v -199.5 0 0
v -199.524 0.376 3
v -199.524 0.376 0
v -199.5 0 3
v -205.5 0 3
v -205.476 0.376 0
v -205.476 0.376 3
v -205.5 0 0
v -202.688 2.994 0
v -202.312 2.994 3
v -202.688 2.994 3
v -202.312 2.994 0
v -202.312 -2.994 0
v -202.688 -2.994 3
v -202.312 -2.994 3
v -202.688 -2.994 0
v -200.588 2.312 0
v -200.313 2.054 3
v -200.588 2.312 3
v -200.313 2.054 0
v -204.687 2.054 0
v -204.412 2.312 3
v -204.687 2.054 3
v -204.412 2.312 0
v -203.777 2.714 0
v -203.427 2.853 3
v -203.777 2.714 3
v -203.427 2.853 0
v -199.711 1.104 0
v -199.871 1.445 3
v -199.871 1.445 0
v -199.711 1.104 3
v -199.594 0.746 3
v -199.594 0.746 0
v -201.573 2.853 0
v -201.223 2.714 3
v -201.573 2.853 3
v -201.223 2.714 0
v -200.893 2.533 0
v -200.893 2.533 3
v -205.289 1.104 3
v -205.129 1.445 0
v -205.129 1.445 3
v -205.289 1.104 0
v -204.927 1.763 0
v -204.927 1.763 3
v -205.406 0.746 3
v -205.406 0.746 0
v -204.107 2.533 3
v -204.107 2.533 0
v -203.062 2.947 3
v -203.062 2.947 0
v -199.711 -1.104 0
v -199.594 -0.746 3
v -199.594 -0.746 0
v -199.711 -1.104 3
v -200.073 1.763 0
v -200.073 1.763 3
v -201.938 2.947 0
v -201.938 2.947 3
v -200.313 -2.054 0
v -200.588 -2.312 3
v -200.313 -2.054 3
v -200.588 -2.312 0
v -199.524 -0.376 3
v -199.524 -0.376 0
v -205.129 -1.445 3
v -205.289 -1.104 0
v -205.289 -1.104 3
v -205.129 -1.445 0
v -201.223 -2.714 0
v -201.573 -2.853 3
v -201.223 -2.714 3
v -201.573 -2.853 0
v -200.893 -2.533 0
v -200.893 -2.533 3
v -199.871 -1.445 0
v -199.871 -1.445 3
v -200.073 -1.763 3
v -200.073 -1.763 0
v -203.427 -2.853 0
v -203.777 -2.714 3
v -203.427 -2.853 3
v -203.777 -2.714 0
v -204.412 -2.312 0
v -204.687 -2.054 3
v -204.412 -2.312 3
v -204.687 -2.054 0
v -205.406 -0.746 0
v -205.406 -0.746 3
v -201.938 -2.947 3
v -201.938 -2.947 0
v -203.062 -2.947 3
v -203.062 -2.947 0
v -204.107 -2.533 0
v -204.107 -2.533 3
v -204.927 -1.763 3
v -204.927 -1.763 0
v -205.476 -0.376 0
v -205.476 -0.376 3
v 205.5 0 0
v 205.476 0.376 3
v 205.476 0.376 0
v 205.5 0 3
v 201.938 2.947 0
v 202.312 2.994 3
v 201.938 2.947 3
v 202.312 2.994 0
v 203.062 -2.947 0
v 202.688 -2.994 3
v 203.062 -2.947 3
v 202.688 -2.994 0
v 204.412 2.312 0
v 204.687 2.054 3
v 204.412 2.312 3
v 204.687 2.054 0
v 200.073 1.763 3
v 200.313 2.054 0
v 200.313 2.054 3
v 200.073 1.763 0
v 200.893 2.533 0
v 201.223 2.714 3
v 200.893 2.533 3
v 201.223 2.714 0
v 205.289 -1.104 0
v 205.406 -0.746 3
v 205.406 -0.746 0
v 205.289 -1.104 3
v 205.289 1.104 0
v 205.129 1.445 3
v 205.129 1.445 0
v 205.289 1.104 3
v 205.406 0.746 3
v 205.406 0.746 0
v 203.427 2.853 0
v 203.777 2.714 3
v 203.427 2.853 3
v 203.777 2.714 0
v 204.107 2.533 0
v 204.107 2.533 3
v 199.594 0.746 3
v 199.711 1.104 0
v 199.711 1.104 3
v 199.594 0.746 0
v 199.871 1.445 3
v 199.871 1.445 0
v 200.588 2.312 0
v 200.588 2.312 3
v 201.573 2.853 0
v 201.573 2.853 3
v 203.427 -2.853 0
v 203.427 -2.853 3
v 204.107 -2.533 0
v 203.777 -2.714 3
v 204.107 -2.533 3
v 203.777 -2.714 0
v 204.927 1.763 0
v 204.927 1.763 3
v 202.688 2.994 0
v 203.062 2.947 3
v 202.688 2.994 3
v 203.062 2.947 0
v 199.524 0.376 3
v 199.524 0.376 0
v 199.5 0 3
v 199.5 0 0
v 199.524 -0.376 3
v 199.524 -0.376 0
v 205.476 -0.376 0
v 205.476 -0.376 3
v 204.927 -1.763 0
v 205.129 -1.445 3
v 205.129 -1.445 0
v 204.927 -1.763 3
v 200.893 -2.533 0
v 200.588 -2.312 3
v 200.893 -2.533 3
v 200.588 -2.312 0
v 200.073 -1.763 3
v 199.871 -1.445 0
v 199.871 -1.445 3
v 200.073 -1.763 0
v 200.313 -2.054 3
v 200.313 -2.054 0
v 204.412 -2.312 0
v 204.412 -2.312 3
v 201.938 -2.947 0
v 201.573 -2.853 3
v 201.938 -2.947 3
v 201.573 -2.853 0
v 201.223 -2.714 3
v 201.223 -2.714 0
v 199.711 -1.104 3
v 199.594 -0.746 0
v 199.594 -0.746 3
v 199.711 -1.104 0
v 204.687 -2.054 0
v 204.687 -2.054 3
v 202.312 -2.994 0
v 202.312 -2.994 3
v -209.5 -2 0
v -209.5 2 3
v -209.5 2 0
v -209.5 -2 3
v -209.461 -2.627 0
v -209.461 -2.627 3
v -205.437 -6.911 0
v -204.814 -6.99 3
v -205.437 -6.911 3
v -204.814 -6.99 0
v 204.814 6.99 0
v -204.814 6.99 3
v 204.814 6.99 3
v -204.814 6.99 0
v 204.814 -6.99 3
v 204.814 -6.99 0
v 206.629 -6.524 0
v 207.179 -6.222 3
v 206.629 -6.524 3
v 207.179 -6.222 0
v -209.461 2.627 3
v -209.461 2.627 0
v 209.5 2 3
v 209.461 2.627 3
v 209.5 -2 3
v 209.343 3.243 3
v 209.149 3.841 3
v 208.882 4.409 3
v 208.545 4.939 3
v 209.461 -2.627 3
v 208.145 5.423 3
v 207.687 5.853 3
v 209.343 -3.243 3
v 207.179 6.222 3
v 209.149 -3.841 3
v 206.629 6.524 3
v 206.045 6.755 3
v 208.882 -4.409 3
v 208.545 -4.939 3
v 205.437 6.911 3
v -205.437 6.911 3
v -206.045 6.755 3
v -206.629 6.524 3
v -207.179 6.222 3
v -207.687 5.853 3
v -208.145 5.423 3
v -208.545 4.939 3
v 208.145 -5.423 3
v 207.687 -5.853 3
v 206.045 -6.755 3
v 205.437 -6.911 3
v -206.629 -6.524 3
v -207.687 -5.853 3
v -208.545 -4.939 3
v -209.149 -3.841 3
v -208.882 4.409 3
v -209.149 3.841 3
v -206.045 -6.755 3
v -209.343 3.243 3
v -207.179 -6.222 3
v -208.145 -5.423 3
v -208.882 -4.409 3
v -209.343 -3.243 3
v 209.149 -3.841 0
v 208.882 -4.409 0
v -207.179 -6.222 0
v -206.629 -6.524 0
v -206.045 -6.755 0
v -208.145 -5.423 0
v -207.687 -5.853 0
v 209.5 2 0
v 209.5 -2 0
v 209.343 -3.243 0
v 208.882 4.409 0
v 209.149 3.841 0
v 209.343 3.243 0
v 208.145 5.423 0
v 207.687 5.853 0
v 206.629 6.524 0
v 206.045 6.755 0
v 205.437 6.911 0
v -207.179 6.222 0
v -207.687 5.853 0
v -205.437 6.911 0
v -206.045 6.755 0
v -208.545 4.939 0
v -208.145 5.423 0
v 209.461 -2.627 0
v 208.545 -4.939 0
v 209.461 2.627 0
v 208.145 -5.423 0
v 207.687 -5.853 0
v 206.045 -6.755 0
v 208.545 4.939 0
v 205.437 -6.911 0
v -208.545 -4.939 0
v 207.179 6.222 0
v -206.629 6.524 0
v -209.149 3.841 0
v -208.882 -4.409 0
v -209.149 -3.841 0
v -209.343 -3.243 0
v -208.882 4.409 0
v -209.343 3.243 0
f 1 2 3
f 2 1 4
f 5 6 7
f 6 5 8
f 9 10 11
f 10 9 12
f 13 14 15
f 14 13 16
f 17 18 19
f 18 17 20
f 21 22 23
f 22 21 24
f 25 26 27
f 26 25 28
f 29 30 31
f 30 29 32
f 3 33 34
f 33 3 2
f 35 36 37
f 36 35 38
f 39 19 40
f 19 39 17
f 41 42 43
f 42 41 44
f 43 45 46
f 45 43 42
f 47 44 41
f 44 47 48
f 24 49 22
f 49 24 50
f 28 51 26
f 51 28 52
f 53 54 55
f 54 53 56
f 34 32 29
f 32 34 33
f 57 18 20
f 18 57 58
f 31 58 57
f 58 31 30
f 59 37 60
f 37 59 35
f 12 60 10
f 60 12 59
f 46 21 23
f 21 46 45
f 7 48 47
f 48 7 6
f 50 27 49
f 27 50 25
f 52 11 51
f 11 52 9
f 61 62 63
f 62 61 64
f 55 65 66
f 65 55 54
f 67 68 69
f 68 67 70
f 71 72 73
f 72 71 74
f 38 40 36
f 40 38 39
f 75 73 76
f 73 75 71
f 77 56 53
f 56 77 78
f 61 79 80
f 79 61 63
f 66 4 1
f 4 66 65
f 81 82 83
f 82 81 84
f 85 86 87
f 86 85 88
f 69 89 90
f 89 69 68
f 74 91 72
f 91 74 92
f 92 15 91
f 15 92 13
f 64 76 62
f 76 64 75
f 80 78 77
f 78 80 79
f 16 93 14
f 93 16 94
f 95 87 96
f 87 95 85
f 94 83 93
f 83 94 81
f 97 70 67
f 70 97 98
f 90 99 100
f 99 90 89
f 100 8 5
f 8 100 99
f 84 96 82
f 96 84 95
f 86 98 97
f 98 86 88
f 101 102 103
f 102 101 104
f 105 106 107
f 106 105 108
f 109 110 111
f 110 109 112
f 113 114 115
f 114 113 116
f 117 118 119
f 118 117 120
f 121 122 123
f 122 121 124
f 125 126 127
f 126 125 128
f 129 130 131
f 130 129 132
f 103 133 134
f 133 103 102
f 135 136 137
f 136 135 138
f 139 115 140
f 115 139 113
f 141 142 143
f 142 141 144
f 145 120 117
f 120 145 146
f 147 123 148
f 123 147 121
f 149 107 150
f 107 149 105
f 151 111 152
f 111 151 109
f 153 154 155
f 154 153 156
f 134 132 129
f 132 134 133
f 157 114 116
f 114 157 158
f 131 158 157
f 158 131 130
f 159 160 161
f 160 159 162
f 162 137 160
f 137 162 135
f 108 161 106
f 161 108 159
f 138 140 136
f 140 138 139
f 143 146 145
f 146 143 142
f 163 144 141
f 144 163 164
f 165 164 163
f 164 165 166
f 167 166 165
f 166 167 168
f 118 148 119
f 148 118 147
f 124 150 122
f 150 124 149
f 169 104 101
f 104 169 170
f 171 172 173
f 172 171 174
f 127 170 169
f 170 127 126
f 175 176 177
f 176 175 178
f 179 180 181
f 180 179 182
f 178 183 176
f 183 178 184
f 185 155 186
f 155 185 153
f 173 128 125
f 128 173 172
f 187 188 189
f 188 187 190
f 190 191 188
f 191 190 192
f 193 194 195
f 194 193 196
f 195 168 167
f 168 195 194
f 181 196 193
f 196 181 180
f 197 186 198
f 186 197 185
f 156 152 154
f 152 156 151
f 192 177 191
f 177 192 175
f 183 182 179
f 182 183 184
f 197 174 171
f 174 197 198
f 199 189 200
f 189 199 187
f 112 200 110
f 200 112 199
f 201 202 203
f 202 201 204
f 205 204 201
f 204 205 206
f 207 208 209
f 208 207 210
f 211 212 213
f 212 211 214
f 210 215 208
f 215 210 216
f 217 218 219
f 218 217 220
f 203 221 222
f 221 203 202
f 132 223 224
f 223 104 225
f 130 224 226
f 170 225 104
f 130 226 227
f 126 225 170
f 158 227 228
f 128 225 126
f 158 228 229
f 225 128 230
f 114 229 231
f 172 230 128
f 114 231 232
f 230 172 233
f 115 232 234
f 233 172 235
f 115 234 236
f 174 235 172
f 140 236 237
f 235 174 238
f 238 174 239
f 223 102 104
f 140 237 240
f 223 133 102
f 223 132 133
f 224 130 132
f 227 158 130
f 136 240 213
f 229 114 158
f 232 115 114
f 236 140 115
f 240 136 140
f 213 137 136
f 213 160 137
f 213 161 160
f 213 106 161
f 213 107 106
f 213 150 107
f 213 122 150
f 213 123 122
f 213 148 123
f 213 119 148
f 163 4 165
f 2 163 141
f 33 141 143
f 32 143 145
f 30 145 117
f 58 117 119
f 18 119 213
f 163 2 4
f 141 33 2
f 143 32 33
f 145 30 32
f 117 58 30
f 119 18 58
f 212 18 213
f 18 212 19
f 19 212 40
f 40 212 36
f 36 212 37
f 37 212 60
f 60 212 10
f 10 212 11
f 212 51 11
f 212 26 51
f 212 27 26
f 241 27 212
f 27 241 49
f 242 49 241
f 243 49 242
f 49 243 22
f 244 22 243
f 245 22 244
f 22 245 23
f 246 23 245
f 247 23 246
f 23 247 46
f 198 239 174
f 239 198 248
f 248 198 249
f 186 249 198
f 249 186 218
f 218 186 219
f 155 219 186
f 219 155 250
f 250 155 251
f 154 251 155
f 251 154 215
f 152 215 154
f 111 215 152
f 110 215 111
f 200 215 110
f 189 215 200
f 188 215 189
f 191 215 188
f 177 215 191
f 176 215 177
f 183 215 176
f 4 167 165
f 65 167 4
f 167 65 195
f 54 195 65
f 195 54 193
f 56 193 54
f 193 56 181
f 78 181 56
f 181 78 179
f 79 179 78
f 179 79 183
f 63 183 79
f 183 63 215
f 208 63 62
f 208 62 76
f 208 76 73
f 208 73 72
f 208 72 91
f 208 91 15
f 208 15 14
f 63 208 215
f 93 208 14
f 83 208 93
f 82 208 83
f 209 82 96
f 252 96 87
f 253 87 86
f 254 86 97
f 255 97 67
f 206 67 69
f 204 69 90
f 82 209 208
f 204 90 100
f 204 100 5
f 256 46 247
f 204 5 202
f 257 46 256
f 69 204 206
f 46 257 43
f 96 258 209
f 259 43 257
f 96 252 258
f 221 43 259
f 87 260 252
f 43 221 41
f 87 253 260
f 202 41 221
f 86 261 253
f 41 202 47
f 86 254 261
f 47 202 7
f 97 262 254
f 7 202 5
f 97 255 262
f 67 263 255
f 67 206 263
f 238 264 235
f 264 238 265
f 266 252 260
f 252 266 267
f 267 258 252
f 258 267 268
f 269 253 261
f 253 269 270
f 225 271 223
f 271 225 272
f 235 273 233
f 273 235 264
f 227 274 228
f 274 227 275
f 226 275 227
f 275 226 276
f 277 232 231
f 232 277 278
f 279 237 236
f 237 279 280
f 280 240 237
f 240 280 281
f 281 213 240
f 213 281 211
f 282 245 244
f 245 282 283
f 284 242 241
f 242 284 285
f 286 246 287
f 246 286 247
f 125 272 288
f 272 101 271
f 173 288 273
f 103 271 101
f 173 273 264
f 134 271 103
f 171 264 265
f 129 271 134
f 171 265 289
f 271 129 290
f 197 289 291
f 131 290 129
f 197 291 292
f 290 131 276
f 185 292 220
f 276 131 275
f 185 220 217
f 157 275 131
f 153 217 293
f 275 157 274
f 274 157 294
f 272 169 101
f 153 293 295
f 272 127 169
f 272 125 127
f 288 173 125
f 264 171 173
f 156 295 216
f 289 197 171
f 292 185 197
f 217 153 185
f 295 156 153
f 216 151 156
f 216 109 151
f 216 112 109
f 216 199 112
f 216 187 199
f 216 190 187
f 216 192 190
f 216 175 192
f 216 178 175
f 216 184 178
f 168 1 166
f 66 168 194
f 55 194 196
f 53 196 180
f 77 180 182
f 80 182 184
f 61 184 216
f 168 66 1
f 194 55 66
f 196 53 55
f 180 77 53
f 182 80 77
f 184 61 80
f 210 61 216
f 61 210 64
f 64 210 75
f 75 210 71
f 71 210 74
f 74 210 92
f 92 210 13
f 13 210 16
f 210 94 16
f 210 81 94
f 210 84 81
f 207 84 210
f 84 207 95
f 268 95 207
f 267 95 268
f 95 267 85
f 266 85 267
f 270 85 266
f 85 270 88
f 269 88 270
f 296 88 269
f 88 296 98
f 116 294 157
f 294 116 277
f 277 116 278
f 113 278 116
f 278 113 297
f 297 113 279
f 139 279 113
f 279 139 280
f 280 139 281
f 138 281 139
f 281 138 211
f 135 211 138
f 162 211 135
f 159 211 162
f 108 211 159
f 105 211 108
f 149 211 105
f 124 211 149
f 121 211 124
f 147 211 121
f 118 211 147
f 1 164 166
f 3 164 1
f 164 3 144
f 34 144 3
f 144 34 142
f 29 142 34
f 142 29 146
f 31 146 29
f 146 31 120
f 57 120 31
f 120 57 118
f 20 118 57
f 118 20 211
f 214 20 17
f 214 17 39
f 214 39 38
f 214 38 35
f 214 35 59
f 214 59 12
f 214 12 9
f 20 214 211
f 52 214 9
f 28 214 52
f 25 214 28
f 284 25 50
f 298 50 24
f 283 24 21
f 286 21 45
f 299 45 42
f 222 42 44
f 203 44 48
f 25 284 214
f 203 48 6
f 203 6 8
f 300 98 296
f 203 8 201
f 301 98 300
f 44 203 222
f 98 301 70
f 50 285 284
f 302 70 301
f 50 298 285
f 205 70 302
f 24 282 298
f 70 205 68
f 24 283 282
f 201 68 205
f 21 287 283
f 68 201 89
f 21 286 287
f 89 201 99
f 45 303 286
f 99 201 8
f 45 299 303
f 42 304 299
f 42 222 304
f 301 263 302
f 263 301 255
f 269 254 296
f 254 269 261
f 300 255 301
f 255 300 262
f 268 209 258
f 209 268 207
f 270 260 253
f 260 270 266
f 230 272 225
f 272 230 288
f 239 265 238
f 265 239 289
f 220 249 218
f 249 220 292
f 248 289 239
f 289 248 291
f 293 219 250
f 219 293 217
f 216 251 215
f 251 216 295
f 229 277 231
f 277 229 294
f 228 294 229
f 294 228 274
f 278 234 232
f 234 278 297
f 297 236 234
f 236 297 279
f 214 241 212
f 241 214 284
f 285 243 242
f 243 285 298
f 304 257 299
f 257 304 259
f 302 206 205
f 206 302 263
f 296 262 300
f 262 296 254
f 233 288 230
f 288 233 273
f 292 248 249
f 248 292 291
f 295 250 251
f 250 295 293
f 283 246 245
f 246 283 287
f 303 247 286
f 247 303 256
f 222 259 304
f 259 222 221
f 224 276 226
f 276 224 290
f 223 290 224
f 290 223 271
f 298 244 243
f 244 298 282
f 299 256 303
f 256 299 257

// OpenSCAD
$fn = 50;


difference() {
	union() {
		hull() {
			translate(v = [-204.5000000000, 2.0000000000, 0]) {
				cylinder(h = 3, r = 5);
			}
			translate(v = [204.5000000000, 2.0000000000, 0]) {
				cylinder(h = 3, r = 5);
			}
			translate(v = [-204.5000000000, -2.0000000000, 0]) {
				cylinder(h = 3, r = 5);
			}
			translate(v = [204.5000000000, -2.0000000000, 0]) {
				cylinder(h = 3, r = 5);
			}
		}
	}
	union() {
		translate(v = [-202.5000000000, 0.0000000000, 0]) {
			cylinder(h = 3, r = 3.0000000000);
		}
		translate(v = [202.5000000000, 0.0000000000, 0]) {
			cylinder(h = 3, r = 3.0000000000);
		}
		translate(v = [-202.5000000000, 0.0000000000, 0]) {
			cylinder(h = 3, r = 1.5000000000);
		}
		translate(v = [202.5000000000, 0.0000000000, 0]) {
			cylinder(h = 3, r = 1.5000000000);
		}
		translate(v = [-202.5000000000, 0.0000000000, 0]) {
			cylinder(h = 3, r = 1.5000000000);
		}
		translate(v = [202.5000000000, 0.0000000000, 0]) {
			cylinder(h = 3, r = 1.5000000000);
		}
		translate(v = [-202.5000000000, 0.0000000000, 0]) {
			cylinder(h = 3, r = 1.5000000000);
		}
		translate(v = [202.5000000000, 0.0000000000, 0]) {
			cylinder(h = 3, r = 1.5000000000);
		}
	}
}
